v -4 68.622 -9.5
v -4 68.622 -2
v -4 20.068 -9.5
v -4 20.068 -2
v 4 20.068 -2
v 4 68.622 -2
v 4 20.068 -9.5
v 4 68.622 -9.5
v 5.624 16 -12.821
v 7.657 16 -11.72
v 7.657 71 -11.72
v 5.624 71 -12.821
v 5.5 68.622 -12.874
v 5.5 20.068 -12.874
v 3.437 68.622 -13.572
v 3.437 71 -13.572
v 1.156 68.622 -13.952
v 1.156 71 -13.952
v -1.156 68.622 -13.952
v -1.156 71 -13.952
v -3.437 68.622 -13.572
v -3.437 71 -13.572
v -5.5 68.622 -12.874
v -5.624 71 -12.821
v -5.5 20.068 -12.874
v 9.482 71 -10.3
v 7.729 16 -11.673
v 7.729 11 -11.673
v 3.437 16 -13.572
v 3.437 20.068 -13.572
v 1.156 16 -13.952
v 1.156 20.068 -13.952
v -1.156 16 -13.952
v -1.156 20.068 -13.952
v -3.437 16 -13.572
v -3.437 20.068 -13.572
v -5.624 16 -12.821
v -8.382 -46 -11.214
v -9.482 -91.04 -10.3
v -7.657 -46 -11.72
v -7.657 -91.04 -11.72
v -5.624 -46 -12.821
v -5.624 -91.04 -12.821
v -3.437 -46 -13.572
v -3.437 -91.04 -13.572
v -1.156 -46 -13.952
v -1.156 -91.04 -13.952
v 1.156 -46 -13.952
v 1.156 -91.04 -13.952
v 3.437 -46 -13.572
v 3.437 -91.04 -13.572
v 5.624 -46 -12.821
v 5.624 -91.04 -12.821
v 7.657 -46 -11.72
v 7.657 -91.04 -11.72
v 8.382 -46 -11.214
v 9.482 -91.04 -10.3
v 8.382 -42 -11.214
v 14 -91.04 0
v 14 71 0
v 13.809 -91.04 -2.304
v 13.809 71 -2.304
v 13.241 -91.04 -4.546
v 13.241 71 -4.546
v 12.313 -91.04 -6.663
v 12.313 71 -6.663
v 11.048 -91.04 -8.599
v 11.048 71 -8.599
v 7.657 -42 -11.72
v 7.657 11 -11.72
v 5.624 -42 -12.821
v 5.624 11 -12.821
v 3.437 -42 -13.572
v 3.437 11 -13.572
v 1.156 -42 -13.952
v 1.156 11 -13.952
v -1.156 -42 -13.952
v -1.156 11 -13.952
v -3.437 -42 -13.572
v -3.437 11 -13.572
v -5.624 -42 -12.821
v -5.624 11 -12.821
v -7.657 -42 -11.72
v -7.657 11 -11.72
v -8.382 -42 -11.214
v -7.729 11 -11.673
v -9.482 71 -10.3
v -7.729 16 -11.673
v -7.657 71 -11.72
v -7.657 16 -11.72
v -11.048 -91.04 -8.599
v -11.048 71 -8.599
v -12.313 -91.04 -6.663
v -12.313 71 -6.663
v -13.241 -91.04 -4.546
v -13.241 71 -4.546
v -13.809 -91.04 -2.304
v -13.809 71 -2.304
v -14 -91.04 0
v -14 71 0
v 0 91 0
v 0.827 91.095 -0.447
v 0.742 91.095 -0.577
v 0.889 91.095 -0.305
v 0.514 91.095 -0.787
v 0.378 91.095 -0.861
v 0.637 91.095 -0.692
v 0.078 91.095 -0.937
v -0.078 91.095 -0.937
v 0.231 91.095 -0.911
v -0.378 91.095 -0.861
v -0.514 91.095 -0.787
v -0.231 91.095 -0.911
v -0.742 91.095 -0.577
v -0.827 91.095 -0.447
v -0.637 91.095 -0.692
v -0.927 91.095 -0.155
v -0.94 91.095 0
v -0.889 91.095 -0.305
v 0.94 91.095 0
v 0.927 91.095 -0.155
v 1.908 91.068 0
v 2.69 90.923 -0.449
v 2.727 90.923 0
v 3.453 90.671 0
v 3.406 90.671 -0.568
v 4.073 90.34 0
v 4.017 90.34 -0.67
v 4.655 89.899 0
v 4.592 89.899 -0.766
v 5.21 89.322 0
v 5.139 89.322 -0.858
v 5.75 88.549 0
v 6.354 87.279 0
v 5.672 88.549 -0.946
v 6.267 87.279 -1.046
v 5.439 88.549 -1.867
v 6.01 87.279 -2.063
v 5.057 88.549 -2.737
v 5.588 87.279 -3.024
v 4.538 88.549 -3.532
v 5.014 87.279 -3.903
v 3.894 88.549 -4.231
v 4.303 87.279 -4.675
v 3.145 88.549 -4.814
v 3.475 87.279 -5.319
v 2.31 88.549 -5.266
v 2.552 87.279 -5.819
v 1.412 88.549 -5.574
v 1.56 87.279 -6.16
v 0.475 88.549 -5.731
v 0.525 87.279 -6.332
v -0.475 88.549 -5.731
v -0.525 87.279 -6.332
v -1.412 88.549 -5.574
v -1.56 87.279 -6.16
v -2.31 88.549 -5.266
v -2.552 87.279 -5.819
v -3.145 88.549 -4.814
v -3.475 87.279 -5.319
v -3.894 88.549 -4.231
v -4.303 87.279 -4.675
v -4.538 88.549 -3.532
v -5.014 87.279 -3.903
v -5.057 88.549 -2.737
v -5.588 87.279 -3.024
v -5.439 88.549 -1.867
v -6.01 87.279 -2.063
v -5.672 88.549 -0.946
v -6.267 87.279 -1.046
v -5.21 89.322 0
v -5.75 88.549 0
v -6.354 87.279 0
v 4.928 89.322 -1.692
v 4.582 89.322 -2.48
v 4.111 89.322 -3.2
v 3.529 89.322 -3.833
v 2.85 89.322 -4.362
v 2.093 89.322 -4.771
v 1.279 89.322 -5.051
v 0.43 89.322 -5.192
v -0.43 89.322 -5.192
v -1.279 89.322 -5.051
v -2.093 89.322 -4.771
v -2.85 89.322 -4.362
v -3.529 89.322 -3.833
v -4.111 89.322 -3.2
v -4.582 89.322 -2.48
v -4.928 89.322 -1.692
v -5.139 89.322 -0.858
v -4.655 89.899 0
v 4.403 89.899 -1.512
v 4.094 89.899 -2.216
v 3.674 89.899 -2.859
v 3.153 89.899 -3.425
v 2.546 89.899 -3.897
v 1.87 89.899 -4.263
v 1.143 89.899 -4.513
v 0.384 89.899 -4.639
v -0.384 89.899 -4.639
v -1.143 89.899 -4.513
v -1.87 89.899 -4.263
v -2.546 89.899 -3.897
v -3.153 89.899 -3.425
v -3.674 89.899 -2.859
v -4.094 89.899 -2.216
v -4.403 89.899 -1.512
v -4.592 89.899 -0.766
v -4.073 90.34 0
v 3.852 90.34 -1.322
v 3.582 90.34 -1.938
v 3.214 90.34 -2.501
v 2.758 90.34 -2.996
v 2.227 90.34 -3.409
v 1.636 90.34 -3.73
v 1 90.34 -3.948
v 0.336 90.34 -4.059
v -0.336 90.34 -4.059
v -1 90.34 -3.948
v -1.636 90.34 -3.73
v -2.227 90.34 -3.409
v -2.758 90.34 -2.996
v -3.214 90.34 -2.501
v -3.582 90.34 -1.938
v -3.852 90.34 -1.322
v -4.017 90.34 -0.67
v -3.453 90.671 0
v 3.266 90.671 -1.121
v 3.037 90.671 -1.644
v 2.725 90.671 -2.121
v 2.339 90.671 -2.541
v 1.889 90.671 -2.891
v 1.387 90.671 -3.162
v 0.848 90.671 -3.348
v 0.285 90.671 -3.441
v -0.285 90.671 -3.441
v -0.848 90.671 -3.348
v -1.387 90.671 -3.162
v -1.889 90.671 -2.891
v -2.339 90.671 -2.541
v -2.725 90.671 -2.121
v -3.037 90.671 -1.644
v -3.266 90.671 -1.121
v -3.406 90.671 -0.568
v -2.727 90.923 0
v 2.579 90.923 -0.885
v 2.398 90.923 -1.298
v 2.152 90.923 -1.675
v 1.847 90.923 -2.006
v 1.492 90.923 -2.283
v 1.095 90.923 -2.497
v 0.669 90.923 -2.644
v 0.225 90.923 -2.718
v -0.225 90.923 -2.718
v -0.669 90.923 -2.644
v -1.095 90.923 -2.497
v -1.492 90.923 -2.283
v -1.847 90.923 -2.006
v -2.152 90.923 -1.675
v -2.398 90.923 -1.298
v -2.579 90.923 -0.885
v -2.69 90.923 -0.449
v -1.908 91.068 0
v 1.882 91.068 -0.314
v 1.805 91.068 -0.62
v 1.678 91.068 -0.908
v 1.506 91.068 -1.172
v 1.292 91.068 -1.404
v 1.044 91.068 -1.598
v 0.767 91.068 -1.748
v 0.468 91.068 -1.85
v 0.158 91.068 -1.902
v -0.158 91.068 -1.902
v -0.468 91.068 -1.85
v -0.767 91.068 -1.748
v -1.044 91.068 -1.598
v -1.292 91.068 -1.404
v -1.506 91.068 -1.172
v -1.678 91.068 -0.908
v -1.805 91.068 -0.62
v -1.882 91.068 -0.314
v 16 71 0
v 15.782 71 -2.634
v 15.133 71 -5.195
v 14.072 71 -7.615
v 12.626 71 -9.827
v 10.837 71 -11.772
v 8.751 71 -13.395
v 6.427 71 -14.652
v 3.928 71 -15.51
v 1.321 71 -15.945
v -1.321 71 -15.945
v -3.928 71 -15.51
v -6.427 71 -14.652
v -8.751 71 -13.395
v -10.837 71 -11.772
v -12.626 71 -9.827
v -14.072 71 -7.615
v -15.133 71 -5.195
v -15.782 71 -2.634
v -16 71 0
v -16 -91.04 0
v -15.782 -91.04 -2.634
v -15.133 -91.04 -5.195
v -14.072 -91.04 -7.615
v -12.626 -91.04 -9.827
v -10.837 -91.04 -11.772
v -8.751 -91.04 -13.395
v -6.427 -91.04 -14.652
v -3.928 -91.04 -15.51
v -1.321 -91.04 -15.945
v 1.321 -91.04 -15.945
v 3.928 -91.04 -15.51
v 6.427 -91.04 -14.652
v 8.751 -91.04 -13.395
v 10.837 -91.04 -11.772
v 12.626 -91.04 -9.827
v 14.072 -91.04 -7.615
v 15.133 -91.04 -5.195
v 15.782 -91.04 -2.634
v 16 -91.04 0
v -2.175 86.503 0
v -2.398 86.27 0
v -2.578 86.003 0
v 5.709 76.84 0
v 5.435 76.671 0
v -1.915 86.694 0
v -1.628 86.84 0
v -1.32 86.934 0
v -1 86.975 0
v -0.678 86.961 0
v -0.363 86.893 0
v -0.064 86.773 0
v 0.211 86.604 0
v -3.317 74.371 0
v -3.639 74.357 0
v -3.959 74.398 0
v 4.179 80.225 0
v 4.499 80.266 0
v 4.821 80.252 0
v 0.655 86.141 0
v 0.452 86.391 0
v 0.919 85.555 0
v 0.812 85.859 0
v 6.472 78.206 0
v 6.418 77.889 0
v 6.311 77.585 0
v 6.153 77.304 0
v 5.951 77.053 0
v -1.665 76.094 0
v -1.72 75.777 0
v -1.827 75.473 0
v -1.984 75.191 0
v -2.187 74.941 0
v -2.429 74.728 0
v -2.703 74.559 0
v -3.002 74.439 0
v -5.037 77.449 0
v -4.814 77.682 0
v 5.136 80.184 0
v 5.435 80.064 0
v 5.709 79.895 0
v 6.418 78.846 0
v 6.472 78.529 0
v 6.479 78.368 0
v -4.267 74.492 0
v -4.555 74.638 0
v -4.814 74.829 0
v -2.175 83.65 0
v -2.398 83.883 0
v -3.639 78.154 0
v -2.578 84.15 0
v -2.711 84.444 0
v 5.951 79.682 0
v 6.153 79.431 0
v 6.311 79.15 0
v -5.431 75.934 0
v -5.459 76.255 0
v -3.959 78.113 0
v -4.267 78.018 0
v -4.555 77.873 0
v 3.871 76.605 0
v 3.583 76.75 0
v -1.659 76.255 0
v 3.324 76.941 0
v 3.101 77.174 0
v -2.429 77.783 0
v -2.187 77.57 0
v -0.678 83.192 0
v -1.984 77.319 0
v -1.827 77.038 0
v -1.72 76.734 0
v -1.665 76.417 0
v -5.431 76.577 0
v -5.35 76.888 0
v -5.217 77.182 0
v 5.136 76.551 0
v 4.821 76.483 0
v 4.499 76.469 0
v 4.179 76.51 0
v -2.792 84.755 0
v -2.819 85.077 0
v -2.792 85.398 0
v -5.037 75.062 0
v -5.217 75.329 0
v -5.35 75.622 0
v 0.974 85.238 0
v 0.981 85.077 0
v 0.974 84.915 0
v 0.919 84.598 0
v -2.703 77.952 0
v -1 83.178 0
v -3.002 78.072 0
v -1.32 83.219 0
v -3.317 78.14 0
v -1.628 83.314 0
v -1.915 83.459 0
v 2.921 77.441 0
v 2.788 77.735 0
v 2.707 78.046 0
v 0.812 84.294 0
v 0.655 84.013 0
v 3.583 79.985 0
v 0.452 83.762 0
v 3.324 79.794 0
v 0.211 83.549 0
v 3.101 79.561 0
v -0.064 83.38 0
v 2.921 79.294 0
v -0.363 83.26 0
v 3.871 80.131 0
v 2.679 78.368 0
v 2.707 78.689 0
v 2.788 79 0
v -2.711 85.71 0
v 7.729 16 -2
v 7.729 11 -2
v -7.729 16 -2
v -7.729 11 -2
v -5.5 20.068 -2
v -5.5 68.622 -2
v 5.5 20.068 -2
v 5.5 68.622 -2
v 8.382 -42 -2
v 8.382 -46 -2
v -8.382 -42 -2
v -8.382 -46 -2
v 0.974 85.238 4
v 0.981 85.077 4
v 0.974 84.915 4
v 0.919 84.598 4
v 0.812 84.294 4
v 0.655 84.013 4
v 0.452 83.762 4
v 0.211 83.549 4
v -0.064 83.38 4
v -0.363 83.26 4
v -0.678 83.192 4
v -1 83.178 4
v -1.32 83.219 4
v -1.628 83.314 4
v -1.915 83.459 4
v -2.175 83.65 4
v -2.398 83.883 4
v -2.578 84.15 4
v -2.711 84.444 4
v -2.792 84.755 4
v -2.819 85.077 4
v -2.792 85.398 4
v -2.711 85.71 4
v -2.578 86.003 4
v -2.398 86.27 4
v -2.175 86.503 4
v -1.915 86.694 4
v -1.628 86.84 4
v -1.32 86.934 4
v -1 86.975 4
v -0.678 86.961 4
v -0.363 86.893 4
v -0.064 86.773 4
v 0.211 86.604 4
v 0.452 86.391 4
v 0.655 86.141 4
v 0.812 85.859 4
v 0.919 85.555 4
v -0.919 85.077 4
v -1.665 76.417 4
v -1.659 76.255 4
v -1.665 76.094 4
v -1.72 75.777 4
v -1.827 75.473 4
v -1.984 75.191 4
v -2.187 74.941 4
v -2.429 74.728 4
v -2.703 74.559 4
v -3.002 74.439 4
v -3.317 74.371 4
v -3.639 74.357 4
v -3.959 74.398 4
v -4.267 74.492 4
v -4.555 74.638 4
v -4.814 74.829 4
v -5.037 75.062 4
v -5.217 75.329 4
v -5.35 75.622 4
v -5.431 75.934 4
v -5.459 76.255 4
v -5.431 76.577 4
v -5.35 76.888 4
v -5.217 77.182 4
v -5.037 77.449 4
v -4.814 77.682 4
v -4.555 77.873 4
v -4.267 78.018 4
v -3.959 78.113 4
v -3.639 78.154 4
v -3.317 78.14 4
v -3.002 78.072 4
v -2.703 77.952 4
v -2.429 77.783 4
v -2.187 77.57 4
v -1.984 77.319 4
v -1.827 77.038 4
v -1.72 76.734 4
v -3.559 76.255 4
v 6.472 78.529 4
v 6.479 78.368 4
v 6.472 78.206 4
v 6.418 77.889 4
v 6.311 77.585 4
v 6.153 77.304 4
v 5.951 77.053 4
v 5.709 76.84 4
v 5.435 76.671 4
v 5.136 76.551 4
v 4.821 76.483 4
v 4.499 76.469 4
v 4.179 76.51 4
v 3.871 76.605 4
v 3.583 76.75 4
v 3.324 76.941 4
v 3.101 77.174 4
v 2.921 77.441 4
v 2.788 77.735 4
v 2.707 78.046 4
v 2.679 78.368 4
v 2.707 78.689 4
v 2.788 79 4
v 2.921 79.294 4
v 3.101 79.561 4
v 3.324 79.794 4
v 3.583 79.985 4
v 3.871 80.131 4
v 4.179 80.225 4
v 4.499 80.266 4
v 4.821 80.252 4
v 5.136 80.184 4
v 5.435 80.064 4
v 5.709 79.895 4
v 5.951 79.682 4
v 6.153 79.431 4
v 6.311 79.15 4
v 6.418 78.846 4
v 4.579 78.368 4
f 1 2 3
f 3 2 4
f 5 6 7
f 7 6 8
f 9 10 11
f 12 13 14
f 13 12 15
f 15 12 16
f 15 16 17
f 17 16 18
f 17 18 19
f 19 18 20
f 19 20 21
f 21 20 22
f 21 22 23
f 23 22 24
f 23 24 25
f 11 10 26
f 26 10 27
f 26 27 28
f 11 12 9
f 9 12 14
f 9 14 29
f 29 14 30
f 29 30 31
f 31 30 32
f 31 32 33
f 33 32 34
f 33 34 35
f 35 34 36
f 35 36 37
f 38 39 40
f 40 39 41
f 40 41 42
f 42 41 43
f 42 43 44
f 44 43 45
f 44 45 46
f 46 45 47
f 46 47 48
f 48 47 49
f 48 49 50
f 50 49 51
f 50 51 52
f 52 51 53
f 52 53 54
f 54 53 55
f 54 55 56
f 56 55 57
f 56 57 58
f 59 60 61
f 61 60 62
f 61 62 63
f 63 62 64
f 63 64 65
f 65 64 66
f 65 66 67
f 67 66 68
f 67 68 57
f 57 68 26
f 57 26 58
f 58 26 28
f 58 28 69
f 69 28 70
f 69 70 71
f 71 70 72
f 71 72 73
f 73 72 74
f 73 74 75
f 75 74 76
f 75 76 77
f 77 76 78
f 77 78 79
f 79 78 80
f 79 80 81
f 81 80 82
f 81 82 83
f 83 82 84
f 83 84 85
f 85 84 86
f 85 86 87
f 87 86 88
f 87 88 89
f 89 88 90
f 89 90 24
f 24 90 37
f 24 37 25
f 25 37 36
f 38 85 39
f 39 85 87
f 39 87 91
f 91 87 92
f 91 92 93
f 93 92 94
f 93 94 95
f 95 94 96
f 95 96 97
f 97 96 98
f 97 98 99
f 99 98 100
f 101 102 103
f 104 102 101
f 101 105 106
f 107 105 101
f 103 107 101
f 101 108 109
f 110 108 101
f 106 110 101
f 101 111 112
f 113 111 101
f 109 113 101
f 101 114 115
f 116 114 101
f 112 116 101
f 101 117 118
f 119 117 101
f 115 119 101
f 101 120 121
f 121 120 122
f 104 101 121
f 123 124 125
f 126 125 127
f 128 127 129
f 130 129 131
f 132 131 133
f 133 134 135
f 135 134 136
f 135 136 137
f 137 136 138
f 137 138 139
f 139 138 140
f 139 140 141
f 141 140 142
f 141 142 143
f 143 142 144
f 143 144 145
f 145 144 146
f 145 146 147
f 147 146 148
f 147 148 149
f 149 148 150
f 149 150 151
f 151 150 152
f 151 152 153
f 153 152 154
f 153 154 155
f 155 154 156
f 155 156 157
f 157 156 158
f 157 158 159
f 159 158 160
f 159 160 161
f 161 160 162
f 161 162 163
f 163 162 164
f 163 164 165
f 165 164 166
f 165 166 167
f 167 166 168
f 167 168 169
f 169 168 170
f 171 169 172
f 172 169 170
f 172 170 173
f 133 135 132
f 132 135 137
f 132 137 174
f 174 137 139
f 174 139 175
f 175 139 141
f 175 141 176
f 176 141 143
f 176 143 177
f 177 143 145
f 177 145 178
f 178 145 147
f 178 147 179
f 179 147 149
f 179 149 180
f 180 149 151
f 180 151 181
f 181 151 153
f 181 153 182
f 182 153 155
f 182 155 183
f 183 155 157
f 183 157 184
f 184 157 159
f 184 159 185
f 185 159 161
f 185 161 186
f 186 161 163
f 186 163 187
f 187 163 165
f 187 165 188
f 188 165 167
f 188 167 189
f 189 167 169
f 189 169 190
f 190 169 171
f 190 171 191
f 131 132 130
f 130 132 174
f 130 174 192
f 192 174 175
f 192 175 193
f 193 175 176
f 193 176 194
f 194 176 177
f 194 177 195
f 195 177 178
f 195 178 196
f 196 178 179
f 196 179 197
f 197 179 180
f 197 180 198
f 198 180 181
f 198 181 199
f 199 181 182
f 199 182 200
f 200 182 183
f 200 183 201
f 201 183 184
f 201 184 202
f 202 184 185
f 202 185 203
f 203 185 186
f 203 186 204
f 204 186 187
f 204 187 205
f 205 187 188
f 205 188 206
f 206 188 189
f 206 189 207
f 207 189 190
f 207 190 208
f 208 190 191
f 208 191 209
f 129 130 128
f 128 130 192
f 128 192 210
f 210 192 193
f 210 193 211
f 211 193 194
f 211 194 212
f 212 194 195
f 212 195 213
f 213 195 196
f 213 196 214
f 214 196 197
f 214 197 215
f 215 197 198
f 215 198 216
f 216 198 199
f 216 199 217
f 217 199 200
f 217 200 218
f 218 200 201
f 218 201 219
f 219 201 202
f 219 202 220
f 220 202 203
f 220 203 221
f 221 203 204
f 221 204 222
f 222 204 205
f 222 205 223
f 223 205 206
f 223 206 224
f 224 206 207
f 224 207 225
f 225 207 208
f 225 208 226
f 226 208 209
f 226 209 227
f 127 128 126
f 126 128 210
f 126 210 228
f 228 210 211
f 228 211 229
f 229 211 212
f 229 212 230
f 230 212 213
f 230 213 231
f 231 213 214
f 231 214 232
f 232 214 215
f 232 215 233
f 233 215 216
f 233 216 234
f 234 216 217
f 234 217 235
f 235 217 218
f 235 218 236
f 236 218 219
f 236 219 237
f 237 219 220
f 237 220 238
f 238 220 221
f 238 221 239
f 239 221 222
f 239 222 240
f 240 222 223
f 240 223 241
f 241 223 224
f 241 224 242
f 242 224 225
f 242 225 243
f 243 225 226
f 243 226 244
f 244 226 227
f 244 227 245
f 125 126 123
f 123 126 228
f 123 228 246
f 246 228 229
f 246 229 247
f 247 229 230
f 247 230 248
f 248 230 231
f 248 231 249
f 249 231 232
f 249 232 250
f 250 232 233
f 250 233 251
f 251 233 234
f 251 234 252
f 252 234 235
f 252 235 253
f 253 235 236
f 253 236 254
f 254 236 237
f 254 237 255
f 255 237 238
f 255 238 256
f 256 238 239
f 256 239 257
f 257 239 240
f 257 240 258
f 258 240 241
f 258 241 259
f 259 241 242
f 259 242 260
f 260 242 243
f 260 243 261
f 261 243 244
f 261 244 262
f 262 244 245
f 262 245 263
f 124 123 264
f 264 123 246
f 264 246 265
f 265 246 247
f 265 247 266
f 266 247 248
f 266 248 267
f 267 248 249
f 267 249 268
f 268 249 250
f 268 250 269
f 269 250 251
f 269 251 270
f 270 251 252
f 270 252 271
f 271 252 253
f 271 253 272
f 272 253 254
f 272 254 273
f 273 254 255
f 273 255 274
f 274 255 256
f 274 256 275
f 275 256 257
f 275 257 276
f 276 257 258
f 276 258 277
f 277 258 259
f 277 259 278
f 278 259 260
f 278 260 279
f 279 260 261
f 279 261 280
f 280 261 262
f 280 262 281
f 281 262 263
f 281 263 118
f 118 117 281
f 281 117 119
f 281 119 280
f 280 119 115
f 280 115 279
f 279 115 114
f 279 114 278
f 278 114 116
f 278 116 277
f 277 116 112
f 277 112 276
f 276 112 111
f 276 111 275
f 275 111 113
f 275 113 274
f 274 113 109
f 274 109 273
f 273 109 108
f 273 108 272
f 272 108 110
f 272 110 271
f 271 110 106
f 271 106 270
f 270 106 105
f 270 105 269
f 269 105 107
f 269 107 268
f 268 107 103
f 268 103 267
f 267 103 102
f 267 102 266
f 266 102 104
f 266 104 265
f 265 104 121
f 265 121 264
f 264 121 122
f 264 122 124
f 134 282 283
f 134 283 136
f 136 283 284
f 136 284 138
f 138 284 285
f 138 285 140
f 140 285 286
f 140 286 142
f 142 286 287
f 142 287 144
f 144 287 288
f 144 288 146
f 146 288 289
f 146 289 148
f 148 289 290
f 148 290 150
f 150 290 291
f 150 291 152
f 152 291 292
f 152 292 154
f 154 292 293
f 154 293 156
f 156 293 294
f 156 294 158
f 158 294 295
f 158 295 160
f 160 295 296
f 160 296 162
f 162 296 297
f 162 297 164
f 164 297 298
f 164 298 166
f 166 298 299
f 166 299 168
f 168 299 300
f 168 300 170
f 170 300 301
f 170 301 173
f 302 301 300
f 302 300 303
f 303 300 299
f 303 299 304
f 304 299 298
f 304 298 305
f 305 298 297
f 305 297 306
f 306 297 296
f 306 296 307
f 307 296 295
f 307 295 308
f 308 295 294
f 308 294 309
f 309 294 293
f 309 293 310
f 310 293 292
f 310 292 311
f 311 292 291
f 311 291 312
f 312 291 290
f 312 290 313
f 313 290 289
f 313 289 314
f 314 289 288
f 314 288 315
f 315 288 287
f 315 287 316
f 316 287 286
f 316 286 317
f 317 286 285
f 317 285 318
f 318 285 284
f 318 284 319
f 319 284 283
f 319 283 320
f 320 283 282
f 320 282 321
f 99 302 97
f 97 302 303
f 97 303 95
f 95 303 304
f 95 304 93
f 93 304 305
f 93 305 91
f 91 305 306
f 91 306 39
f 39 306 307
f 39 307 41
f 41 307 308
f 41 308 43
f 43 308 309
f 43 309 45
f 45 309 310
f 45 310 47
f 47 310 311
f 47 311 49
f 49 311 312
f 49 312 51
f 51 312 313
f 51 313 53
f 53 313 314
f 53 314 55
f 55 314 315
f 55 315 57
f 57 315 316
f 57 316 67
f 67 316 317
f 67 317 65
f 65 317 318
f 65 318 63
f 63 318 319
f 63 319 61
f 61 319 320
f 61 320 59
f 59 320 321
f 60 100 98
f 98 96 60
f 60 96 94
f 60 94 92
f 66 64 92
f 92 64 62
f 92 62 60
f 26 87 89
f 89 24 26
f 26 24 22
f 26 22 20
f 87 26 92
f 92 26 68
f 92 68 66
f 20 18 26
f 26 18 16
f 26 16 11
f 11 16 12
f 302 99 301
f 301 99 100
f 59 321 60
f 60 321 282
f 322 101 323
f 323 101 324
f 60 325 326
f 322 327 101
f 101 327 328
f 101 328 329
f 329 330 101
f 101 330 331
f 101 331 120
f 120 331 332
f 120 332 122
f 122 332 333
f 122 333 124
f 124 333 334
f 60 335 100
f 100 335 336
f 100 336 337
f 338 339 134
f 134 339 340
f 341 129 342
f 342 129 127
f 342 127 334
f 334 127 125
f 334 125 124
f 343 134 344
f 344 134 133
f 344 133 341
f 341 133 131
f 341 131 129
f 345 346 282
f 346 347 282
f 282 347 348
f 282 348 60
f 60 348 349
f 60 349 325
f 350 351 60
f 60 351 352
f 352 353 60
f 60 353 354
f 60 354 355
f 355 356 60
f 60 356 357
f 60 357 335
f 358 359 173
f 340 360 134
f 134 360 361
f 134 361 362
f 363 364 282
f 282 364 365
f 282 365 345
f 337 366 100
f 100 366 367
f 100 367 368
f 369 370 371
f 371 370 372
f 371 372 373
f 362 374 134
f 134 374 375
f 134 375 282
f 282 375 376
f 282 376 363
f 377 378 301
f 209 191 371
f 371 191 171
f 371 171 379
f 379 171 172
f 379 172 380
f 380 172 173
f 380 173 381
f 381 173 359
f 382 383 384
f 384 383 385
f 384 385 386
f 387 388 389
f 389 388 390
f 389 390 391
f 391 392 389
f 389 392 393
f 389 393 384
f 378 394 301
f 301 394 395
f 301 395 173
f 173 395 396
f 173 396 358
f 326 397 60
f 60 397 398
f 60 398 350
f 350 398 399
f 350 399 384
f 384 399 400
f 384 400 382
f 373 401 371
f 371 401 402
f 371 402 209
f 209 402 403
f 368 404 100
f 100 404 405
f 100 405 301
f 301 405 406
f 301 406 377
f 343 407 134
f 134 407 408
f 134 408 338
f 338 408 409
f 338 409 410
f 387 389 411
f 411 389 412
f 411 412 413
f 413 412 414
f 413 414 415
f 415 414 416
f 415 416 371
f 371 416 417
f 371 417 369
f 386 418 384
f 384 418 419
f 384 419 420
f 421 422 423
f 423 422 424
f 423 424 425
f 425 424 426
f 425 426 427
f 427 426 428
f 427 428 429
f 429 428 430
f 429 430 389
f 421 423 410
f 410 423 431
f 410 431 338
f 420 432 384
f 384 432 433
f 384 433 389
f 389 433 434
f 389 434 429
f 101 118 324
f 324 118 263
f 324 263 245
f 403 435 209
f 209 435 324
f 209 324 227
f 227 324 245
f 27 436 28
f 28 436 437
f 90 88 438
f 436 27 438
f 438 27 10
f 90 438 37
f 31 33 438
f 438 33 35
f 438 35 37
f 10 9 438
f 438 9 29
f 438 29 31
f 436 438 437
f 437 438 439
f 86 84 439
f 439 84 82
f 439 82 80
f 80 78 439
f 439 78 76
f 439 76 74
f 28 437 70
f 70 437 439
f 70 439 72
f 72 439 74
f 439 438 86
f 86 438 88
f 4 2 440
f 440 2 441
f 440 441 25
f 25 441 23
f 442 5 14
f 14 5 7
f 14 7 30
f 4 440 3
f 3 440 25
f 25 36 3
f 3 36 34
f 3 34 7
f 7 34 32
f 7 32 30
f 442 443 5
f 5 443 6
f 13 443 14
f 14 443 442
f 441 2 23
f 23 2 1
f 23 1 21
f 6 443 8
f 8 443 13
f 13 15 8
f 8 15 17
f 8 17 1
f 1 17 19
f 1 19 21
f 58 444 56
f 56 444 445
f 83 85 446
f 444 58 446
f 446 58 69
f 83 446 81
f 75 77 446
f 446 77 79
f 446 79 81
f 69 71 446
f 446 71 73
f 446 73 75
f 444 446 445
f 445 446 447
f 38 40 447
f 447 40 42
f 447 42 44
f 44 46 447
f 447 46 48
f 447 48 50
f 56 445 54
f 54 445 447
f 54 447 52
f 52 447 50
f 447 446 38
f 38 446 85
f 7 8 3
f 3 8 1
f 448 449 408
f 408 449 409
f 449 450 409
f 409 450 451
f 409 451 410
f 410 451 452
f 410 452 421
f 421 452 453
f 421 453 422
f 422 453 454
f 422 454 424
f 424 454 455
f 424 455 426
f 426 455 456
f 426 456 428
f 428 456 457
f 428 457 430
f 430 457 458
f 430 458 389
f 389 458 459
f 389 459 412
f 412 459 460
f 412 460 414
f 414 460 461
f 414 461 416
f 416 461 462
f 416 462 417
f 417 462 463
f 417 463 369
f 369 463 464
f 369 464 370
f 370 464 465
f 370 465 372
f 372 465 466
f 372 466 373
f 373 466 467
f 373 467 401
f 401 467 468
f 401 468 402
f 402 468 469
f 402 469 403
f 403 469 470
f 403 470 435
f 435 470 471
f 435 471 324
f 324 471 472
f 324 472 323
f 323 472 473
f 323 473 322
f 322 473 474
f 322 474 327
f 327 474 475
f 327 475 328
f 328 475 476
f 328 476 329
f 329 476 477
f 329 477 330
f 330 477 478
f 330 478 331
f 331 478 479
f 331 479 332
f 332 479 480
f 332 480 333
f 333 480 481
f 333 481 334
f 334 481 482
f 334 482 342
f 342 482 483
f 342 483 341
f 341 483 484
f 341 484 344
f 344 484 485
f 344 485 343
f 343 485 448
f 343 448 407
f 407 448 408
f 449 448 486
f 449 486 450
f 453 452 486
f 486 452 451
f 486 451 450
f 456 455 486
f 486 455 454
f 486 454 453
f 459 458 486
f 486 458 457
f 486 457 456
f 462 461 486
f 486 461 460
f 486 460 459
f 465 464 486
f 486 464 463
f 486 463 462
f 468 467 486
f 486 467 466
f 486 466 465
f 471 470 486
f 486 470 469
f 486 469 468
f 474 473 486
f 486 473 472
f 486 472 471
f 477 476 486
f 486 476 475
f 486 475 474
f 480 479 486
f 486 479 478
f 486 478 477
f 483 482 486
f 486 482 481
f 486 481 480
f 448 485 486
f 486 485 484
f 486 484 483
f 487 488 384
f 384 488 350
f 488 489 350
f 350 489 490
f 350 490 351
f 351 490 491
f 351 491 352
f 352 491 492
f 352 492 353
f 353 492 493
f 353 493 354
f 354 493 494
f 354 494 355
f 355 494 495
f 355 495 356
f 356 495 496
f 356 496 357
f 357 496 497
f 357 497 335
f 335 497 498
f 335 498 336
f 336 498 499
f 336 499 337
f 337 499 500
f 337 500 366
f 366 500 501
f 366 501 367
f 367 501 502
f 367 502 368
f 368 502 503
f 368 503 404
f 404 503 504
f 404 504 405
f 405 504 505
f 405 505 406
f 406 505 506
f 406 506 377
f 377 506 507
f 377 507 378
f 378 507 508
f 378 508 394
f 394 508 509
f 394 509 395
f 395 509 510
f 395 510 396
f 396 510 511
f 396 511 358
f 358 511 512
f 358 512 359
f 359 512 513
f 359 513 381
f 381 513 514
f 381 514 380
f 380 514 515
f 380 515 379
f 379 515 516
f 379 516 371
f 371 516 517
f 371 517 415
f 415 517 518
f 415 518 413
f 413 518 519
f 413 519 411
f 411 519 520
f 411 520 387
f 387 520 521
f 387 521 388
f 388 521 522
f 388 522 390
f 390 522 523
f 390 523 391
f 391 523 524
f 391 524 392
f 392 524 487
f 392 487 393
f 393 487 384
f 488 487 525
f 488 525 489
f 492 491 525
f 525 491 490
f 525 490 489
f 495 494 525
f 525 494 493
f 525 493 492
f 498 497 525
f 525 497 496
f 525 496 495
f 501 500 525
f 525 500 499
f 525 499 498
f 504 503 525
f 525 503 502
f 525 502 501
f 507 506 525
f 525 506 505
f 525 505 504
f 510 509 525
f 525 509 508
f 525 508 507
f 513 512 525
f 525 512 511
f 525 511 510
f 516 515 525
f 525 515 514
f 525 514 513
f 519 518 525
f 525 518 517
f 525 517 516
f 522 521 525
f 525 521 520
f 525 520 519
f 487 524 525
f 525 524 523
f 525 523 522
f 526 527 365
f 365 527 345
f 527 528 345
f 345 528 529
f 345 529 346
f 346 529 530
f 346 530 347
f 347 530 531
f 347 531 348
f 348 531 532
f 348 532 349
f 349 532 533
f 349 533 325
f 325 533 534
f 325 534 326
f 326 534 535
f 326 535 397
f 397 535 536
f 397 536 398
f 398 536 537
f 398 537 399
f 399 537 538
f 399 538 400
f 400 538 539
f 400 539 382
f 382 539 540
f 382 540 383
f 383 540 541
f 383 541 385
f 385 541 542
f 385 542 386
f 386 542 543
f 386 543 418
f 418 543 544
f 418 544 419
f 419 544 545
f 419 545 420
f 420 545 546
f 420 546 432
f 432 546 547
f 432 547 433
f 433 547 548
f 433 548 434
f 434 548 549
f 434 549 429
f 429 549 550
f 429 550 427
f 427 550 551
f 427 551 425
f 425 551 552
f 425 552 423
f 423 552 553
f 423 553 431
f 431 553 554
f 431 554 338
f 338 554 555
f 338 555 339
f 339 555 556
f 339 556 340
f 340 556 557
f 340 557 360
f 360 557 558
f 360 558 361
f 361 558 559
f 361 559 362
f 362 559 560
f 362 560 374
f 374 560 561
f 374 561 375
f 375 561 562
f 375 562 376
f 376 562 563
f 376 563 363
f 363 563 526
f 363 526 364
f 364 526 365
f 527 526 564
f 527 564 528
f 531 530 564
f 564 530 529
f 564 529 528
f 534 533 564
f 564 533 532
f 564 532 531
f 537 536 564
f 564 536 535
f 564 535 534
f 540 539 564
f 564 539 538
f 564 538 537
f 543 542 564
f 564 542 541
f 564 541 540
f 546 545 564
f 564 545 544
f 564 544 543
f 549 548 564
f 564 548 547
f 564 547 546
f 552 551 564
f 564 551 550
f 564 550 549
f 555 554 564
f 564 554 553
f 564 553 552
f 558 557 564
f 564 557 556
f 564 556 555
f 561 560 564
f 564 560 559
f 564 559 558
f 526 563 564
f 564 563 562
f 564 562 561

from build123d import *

# Parameters (mm, degrees)
SKETCH2_W                = 2
SKETCH2_H                = 162.039928857
SKETCH5_W                = 72.783621468
SKETCH5_H                = 192.84631039
CUT_EXTRUDE1_DEPTH       = 94.869329042
BOSS_EXTRUDE1_REACH      = 97.869
BOSS_EXTRUDE1_END_RADIUS = 14
BOSS_EXTRUDE1_START      = -2
SKETCH4_W                = 15.457813272
SKETCH4_H                = 5
SKETCH4_W_2              = 16.763190872
SKETCH4_H_2              = 4
SKETCH4_W_3              = 1.5
SKETCH4_H_3              = 48.554461885
BOSS_EXTRUDE2_REACH      = 105.369
BOSS_EXTRUDE2_START      = -9.5
SKETCH4_4_W              = 8
SKETCH4_4_H              = 48.554461885
SKETCH6_R                = 1.9
BOSS_EXTRUDE3_DEPTH      = 4


with BuildPart() as part:
    # Sketch1 → Revolve1 (revolve)
    with BuildSketch(Plane.XY, mode=Mode.PRIVATE) as revolve1_sk:
        with BuildLine():
            Line((6.354000149, 87.279039692), (16, 71))
            Line((16, 71), (0, 71))
            Line((0, 71), (0, 91))
            add(Edge.make_bspline(
                [(0, 91), (4.668589185, 91.723642341), (6.354000149, 87.279039692)],
                knots=[0, 0, 0, 1, 1, 1], degree=2))
        make_face()
    revolve(revolve1_sk.sketch.rotate(Axis((0, 91, 0), (0, -1, 0)), 180), axis=Axis((0, 91, 0), (0, -1, 0)))

    # Sketch2 → Revolve2 (revolve)
    with BuildSketch(Plane.XY, mode=Mode.PRIVATE) as revolve2_sk:
        with Locations((15, -10.019964429)):
            Rectangle(SKETCH2_W, SKETCH2_H)
    revolve(revolve2_sk.sketch.rotate(Axis((0, 91, 0), (0, -1, 0)), 180), axis=Axis((0, 91, 0), (0, -1, 0)))

    # Sketch5 → Cut-Extrude1 (cut, through all)
    with BuildSketch(Plane.XY):
        Rectangle(SKETCH5_W, SKETCH5_H)
    extrude(amount=CUT_EXTRUDE1_DEPTH, mode=Mode.SUBTRACT)

    # Boss-Extrude1: up to this cylinder (the profile starts inside it)
    boss_extrude1_end = Plane(origin=(0, 0.172402, 0), z_dir=(0, 1, 0)) * Cylinder(BOSS_EXTRUDE1_END_RADIUS, 313.082804, mode=Mode.PRIVATE)
    # Sketch4 → Boss-Extrude1 (add, up to the surface)
    with BuildSketch(Plane.XY.offset(BOSS_EXTRUDE1_START), mode=Mode.PRIVATE) as boss_extrude1_sk1:
        with Locations((0, 13.5)):
            Rectangle(SKETCH4_W, SKETCH4_H)
    boss_extrude1_tool1 = extrude(boss_extrude1_sk1.sketch, amount=-BOSS_EXTRUDE1_REACH, mode=Mode.PRIVATE) & boss_extrude1_end
    add(boss_extrude1_tool1.solids().sort_by_distance((0, 13.5, -2))[0])
    # Sketch4 → Boss-Extrude1 (add, up to the surface)
    with BuildSketch(Plane.XY.offset(BOSS_EXTRUDE1_START), mode=Mode.PRIVATE) as boss_extrude1_sk2:
        with Locations((0, -44)):
            Rectangle(SKETCH4_W_2, SKETCH4_H_2)
    boss_extrude1_tool2 = extrude(boss_extrude1_sk2.sketch, amount=-BOSS_EXTRUDE1_REACH, mode=Mode.PRIVATE) & boss_extrude1_end
    add(boss_extrude1_tool2.solids().sort_by_distance((0, -44, -2))[0])
    # Sketch4 → Boss-Extrude1 (add, up to the surface)
    with BuildSketch(Plane.XY.offset(BOSS_EXTRUDE1_START), mode=Mode.PRIVATE) as boss_extrude1_sk3:
        with Locations((4.75, 44.344804049)):
            Rectangle(SKETCH4_W_3, SKETCH4_H_3)
    boss_extrude1_tool3 = extrude(boss_extrude1_sk3.sketch, amount=-BOSS_EXTRUDE1_REACH, mode=Mode.PRIVATE) & boss_extrude1_end
    add(boss_extrude1_tool3.solids().sort_by_distance((4.75, 44.344804, -2))[0])
    # Sketch4 → Boss-Extrude1 (add, up to the surface)
    with BuildSketch(Plane.XY.offset(BOSS_EXTRUDE1_START), mode=Mode.PRIVATE) as boss_extrude1_sk4:
        with Locations((-4.75, 44.344804049)):
            Rectangle(SKETCH4_W_3, SKETCH4_H_3)
    boss_extrude1_tool4 = extrude(boss_extrude1_sk4.sketch, amount=-BOSS_EXTRUDE1_REACH, mode=Mode.PRIVATE) & boss_extrude1_end
    add(boss_extrude1_tool4.solids().sort_by_distance((-4.75, 44.344804, -2))[0])

    # Sketch4<4> → Boss-Extrude2 (add, up to next)
    with BuildSketch(Plane.XY.offset(BOSS_EXTRUDE2_START), mode=Mode.PRIVATE) as boss_extrude2_sk1:
        with Locations((0, 44.344804049)):
            Rectangle(SKETCH4_4_W, SKETCH4_4_H)
    boss_extrude2_tool1 = extrude(boss_extrude2_sk1.sketch, amount=-BOSS_EXTRUDE2_REACH, mode=Mode.PRIVATE) - part.part
    add(boss_extrude2_tool1.solids().sort_by_distance((0, 44.344804, -9.5))[0])

    # Sketch6 → Boss-Extrude3 (add)
    with BuildSketch(Plane.XY):
        with Locations((4.579301858, 78.367512537)):
            Circle(SKETCH6_R)
        with Locations((-3.558513385, 76.255407818)):
            Circle(SKETCH6_R)
        with Locations((-0.919296183, 85.076551058)):
            Circle(SKETCH6_R)
    extrude(amount=BOSS_EXTRUDE3_DEPTH)


solid = part.part
